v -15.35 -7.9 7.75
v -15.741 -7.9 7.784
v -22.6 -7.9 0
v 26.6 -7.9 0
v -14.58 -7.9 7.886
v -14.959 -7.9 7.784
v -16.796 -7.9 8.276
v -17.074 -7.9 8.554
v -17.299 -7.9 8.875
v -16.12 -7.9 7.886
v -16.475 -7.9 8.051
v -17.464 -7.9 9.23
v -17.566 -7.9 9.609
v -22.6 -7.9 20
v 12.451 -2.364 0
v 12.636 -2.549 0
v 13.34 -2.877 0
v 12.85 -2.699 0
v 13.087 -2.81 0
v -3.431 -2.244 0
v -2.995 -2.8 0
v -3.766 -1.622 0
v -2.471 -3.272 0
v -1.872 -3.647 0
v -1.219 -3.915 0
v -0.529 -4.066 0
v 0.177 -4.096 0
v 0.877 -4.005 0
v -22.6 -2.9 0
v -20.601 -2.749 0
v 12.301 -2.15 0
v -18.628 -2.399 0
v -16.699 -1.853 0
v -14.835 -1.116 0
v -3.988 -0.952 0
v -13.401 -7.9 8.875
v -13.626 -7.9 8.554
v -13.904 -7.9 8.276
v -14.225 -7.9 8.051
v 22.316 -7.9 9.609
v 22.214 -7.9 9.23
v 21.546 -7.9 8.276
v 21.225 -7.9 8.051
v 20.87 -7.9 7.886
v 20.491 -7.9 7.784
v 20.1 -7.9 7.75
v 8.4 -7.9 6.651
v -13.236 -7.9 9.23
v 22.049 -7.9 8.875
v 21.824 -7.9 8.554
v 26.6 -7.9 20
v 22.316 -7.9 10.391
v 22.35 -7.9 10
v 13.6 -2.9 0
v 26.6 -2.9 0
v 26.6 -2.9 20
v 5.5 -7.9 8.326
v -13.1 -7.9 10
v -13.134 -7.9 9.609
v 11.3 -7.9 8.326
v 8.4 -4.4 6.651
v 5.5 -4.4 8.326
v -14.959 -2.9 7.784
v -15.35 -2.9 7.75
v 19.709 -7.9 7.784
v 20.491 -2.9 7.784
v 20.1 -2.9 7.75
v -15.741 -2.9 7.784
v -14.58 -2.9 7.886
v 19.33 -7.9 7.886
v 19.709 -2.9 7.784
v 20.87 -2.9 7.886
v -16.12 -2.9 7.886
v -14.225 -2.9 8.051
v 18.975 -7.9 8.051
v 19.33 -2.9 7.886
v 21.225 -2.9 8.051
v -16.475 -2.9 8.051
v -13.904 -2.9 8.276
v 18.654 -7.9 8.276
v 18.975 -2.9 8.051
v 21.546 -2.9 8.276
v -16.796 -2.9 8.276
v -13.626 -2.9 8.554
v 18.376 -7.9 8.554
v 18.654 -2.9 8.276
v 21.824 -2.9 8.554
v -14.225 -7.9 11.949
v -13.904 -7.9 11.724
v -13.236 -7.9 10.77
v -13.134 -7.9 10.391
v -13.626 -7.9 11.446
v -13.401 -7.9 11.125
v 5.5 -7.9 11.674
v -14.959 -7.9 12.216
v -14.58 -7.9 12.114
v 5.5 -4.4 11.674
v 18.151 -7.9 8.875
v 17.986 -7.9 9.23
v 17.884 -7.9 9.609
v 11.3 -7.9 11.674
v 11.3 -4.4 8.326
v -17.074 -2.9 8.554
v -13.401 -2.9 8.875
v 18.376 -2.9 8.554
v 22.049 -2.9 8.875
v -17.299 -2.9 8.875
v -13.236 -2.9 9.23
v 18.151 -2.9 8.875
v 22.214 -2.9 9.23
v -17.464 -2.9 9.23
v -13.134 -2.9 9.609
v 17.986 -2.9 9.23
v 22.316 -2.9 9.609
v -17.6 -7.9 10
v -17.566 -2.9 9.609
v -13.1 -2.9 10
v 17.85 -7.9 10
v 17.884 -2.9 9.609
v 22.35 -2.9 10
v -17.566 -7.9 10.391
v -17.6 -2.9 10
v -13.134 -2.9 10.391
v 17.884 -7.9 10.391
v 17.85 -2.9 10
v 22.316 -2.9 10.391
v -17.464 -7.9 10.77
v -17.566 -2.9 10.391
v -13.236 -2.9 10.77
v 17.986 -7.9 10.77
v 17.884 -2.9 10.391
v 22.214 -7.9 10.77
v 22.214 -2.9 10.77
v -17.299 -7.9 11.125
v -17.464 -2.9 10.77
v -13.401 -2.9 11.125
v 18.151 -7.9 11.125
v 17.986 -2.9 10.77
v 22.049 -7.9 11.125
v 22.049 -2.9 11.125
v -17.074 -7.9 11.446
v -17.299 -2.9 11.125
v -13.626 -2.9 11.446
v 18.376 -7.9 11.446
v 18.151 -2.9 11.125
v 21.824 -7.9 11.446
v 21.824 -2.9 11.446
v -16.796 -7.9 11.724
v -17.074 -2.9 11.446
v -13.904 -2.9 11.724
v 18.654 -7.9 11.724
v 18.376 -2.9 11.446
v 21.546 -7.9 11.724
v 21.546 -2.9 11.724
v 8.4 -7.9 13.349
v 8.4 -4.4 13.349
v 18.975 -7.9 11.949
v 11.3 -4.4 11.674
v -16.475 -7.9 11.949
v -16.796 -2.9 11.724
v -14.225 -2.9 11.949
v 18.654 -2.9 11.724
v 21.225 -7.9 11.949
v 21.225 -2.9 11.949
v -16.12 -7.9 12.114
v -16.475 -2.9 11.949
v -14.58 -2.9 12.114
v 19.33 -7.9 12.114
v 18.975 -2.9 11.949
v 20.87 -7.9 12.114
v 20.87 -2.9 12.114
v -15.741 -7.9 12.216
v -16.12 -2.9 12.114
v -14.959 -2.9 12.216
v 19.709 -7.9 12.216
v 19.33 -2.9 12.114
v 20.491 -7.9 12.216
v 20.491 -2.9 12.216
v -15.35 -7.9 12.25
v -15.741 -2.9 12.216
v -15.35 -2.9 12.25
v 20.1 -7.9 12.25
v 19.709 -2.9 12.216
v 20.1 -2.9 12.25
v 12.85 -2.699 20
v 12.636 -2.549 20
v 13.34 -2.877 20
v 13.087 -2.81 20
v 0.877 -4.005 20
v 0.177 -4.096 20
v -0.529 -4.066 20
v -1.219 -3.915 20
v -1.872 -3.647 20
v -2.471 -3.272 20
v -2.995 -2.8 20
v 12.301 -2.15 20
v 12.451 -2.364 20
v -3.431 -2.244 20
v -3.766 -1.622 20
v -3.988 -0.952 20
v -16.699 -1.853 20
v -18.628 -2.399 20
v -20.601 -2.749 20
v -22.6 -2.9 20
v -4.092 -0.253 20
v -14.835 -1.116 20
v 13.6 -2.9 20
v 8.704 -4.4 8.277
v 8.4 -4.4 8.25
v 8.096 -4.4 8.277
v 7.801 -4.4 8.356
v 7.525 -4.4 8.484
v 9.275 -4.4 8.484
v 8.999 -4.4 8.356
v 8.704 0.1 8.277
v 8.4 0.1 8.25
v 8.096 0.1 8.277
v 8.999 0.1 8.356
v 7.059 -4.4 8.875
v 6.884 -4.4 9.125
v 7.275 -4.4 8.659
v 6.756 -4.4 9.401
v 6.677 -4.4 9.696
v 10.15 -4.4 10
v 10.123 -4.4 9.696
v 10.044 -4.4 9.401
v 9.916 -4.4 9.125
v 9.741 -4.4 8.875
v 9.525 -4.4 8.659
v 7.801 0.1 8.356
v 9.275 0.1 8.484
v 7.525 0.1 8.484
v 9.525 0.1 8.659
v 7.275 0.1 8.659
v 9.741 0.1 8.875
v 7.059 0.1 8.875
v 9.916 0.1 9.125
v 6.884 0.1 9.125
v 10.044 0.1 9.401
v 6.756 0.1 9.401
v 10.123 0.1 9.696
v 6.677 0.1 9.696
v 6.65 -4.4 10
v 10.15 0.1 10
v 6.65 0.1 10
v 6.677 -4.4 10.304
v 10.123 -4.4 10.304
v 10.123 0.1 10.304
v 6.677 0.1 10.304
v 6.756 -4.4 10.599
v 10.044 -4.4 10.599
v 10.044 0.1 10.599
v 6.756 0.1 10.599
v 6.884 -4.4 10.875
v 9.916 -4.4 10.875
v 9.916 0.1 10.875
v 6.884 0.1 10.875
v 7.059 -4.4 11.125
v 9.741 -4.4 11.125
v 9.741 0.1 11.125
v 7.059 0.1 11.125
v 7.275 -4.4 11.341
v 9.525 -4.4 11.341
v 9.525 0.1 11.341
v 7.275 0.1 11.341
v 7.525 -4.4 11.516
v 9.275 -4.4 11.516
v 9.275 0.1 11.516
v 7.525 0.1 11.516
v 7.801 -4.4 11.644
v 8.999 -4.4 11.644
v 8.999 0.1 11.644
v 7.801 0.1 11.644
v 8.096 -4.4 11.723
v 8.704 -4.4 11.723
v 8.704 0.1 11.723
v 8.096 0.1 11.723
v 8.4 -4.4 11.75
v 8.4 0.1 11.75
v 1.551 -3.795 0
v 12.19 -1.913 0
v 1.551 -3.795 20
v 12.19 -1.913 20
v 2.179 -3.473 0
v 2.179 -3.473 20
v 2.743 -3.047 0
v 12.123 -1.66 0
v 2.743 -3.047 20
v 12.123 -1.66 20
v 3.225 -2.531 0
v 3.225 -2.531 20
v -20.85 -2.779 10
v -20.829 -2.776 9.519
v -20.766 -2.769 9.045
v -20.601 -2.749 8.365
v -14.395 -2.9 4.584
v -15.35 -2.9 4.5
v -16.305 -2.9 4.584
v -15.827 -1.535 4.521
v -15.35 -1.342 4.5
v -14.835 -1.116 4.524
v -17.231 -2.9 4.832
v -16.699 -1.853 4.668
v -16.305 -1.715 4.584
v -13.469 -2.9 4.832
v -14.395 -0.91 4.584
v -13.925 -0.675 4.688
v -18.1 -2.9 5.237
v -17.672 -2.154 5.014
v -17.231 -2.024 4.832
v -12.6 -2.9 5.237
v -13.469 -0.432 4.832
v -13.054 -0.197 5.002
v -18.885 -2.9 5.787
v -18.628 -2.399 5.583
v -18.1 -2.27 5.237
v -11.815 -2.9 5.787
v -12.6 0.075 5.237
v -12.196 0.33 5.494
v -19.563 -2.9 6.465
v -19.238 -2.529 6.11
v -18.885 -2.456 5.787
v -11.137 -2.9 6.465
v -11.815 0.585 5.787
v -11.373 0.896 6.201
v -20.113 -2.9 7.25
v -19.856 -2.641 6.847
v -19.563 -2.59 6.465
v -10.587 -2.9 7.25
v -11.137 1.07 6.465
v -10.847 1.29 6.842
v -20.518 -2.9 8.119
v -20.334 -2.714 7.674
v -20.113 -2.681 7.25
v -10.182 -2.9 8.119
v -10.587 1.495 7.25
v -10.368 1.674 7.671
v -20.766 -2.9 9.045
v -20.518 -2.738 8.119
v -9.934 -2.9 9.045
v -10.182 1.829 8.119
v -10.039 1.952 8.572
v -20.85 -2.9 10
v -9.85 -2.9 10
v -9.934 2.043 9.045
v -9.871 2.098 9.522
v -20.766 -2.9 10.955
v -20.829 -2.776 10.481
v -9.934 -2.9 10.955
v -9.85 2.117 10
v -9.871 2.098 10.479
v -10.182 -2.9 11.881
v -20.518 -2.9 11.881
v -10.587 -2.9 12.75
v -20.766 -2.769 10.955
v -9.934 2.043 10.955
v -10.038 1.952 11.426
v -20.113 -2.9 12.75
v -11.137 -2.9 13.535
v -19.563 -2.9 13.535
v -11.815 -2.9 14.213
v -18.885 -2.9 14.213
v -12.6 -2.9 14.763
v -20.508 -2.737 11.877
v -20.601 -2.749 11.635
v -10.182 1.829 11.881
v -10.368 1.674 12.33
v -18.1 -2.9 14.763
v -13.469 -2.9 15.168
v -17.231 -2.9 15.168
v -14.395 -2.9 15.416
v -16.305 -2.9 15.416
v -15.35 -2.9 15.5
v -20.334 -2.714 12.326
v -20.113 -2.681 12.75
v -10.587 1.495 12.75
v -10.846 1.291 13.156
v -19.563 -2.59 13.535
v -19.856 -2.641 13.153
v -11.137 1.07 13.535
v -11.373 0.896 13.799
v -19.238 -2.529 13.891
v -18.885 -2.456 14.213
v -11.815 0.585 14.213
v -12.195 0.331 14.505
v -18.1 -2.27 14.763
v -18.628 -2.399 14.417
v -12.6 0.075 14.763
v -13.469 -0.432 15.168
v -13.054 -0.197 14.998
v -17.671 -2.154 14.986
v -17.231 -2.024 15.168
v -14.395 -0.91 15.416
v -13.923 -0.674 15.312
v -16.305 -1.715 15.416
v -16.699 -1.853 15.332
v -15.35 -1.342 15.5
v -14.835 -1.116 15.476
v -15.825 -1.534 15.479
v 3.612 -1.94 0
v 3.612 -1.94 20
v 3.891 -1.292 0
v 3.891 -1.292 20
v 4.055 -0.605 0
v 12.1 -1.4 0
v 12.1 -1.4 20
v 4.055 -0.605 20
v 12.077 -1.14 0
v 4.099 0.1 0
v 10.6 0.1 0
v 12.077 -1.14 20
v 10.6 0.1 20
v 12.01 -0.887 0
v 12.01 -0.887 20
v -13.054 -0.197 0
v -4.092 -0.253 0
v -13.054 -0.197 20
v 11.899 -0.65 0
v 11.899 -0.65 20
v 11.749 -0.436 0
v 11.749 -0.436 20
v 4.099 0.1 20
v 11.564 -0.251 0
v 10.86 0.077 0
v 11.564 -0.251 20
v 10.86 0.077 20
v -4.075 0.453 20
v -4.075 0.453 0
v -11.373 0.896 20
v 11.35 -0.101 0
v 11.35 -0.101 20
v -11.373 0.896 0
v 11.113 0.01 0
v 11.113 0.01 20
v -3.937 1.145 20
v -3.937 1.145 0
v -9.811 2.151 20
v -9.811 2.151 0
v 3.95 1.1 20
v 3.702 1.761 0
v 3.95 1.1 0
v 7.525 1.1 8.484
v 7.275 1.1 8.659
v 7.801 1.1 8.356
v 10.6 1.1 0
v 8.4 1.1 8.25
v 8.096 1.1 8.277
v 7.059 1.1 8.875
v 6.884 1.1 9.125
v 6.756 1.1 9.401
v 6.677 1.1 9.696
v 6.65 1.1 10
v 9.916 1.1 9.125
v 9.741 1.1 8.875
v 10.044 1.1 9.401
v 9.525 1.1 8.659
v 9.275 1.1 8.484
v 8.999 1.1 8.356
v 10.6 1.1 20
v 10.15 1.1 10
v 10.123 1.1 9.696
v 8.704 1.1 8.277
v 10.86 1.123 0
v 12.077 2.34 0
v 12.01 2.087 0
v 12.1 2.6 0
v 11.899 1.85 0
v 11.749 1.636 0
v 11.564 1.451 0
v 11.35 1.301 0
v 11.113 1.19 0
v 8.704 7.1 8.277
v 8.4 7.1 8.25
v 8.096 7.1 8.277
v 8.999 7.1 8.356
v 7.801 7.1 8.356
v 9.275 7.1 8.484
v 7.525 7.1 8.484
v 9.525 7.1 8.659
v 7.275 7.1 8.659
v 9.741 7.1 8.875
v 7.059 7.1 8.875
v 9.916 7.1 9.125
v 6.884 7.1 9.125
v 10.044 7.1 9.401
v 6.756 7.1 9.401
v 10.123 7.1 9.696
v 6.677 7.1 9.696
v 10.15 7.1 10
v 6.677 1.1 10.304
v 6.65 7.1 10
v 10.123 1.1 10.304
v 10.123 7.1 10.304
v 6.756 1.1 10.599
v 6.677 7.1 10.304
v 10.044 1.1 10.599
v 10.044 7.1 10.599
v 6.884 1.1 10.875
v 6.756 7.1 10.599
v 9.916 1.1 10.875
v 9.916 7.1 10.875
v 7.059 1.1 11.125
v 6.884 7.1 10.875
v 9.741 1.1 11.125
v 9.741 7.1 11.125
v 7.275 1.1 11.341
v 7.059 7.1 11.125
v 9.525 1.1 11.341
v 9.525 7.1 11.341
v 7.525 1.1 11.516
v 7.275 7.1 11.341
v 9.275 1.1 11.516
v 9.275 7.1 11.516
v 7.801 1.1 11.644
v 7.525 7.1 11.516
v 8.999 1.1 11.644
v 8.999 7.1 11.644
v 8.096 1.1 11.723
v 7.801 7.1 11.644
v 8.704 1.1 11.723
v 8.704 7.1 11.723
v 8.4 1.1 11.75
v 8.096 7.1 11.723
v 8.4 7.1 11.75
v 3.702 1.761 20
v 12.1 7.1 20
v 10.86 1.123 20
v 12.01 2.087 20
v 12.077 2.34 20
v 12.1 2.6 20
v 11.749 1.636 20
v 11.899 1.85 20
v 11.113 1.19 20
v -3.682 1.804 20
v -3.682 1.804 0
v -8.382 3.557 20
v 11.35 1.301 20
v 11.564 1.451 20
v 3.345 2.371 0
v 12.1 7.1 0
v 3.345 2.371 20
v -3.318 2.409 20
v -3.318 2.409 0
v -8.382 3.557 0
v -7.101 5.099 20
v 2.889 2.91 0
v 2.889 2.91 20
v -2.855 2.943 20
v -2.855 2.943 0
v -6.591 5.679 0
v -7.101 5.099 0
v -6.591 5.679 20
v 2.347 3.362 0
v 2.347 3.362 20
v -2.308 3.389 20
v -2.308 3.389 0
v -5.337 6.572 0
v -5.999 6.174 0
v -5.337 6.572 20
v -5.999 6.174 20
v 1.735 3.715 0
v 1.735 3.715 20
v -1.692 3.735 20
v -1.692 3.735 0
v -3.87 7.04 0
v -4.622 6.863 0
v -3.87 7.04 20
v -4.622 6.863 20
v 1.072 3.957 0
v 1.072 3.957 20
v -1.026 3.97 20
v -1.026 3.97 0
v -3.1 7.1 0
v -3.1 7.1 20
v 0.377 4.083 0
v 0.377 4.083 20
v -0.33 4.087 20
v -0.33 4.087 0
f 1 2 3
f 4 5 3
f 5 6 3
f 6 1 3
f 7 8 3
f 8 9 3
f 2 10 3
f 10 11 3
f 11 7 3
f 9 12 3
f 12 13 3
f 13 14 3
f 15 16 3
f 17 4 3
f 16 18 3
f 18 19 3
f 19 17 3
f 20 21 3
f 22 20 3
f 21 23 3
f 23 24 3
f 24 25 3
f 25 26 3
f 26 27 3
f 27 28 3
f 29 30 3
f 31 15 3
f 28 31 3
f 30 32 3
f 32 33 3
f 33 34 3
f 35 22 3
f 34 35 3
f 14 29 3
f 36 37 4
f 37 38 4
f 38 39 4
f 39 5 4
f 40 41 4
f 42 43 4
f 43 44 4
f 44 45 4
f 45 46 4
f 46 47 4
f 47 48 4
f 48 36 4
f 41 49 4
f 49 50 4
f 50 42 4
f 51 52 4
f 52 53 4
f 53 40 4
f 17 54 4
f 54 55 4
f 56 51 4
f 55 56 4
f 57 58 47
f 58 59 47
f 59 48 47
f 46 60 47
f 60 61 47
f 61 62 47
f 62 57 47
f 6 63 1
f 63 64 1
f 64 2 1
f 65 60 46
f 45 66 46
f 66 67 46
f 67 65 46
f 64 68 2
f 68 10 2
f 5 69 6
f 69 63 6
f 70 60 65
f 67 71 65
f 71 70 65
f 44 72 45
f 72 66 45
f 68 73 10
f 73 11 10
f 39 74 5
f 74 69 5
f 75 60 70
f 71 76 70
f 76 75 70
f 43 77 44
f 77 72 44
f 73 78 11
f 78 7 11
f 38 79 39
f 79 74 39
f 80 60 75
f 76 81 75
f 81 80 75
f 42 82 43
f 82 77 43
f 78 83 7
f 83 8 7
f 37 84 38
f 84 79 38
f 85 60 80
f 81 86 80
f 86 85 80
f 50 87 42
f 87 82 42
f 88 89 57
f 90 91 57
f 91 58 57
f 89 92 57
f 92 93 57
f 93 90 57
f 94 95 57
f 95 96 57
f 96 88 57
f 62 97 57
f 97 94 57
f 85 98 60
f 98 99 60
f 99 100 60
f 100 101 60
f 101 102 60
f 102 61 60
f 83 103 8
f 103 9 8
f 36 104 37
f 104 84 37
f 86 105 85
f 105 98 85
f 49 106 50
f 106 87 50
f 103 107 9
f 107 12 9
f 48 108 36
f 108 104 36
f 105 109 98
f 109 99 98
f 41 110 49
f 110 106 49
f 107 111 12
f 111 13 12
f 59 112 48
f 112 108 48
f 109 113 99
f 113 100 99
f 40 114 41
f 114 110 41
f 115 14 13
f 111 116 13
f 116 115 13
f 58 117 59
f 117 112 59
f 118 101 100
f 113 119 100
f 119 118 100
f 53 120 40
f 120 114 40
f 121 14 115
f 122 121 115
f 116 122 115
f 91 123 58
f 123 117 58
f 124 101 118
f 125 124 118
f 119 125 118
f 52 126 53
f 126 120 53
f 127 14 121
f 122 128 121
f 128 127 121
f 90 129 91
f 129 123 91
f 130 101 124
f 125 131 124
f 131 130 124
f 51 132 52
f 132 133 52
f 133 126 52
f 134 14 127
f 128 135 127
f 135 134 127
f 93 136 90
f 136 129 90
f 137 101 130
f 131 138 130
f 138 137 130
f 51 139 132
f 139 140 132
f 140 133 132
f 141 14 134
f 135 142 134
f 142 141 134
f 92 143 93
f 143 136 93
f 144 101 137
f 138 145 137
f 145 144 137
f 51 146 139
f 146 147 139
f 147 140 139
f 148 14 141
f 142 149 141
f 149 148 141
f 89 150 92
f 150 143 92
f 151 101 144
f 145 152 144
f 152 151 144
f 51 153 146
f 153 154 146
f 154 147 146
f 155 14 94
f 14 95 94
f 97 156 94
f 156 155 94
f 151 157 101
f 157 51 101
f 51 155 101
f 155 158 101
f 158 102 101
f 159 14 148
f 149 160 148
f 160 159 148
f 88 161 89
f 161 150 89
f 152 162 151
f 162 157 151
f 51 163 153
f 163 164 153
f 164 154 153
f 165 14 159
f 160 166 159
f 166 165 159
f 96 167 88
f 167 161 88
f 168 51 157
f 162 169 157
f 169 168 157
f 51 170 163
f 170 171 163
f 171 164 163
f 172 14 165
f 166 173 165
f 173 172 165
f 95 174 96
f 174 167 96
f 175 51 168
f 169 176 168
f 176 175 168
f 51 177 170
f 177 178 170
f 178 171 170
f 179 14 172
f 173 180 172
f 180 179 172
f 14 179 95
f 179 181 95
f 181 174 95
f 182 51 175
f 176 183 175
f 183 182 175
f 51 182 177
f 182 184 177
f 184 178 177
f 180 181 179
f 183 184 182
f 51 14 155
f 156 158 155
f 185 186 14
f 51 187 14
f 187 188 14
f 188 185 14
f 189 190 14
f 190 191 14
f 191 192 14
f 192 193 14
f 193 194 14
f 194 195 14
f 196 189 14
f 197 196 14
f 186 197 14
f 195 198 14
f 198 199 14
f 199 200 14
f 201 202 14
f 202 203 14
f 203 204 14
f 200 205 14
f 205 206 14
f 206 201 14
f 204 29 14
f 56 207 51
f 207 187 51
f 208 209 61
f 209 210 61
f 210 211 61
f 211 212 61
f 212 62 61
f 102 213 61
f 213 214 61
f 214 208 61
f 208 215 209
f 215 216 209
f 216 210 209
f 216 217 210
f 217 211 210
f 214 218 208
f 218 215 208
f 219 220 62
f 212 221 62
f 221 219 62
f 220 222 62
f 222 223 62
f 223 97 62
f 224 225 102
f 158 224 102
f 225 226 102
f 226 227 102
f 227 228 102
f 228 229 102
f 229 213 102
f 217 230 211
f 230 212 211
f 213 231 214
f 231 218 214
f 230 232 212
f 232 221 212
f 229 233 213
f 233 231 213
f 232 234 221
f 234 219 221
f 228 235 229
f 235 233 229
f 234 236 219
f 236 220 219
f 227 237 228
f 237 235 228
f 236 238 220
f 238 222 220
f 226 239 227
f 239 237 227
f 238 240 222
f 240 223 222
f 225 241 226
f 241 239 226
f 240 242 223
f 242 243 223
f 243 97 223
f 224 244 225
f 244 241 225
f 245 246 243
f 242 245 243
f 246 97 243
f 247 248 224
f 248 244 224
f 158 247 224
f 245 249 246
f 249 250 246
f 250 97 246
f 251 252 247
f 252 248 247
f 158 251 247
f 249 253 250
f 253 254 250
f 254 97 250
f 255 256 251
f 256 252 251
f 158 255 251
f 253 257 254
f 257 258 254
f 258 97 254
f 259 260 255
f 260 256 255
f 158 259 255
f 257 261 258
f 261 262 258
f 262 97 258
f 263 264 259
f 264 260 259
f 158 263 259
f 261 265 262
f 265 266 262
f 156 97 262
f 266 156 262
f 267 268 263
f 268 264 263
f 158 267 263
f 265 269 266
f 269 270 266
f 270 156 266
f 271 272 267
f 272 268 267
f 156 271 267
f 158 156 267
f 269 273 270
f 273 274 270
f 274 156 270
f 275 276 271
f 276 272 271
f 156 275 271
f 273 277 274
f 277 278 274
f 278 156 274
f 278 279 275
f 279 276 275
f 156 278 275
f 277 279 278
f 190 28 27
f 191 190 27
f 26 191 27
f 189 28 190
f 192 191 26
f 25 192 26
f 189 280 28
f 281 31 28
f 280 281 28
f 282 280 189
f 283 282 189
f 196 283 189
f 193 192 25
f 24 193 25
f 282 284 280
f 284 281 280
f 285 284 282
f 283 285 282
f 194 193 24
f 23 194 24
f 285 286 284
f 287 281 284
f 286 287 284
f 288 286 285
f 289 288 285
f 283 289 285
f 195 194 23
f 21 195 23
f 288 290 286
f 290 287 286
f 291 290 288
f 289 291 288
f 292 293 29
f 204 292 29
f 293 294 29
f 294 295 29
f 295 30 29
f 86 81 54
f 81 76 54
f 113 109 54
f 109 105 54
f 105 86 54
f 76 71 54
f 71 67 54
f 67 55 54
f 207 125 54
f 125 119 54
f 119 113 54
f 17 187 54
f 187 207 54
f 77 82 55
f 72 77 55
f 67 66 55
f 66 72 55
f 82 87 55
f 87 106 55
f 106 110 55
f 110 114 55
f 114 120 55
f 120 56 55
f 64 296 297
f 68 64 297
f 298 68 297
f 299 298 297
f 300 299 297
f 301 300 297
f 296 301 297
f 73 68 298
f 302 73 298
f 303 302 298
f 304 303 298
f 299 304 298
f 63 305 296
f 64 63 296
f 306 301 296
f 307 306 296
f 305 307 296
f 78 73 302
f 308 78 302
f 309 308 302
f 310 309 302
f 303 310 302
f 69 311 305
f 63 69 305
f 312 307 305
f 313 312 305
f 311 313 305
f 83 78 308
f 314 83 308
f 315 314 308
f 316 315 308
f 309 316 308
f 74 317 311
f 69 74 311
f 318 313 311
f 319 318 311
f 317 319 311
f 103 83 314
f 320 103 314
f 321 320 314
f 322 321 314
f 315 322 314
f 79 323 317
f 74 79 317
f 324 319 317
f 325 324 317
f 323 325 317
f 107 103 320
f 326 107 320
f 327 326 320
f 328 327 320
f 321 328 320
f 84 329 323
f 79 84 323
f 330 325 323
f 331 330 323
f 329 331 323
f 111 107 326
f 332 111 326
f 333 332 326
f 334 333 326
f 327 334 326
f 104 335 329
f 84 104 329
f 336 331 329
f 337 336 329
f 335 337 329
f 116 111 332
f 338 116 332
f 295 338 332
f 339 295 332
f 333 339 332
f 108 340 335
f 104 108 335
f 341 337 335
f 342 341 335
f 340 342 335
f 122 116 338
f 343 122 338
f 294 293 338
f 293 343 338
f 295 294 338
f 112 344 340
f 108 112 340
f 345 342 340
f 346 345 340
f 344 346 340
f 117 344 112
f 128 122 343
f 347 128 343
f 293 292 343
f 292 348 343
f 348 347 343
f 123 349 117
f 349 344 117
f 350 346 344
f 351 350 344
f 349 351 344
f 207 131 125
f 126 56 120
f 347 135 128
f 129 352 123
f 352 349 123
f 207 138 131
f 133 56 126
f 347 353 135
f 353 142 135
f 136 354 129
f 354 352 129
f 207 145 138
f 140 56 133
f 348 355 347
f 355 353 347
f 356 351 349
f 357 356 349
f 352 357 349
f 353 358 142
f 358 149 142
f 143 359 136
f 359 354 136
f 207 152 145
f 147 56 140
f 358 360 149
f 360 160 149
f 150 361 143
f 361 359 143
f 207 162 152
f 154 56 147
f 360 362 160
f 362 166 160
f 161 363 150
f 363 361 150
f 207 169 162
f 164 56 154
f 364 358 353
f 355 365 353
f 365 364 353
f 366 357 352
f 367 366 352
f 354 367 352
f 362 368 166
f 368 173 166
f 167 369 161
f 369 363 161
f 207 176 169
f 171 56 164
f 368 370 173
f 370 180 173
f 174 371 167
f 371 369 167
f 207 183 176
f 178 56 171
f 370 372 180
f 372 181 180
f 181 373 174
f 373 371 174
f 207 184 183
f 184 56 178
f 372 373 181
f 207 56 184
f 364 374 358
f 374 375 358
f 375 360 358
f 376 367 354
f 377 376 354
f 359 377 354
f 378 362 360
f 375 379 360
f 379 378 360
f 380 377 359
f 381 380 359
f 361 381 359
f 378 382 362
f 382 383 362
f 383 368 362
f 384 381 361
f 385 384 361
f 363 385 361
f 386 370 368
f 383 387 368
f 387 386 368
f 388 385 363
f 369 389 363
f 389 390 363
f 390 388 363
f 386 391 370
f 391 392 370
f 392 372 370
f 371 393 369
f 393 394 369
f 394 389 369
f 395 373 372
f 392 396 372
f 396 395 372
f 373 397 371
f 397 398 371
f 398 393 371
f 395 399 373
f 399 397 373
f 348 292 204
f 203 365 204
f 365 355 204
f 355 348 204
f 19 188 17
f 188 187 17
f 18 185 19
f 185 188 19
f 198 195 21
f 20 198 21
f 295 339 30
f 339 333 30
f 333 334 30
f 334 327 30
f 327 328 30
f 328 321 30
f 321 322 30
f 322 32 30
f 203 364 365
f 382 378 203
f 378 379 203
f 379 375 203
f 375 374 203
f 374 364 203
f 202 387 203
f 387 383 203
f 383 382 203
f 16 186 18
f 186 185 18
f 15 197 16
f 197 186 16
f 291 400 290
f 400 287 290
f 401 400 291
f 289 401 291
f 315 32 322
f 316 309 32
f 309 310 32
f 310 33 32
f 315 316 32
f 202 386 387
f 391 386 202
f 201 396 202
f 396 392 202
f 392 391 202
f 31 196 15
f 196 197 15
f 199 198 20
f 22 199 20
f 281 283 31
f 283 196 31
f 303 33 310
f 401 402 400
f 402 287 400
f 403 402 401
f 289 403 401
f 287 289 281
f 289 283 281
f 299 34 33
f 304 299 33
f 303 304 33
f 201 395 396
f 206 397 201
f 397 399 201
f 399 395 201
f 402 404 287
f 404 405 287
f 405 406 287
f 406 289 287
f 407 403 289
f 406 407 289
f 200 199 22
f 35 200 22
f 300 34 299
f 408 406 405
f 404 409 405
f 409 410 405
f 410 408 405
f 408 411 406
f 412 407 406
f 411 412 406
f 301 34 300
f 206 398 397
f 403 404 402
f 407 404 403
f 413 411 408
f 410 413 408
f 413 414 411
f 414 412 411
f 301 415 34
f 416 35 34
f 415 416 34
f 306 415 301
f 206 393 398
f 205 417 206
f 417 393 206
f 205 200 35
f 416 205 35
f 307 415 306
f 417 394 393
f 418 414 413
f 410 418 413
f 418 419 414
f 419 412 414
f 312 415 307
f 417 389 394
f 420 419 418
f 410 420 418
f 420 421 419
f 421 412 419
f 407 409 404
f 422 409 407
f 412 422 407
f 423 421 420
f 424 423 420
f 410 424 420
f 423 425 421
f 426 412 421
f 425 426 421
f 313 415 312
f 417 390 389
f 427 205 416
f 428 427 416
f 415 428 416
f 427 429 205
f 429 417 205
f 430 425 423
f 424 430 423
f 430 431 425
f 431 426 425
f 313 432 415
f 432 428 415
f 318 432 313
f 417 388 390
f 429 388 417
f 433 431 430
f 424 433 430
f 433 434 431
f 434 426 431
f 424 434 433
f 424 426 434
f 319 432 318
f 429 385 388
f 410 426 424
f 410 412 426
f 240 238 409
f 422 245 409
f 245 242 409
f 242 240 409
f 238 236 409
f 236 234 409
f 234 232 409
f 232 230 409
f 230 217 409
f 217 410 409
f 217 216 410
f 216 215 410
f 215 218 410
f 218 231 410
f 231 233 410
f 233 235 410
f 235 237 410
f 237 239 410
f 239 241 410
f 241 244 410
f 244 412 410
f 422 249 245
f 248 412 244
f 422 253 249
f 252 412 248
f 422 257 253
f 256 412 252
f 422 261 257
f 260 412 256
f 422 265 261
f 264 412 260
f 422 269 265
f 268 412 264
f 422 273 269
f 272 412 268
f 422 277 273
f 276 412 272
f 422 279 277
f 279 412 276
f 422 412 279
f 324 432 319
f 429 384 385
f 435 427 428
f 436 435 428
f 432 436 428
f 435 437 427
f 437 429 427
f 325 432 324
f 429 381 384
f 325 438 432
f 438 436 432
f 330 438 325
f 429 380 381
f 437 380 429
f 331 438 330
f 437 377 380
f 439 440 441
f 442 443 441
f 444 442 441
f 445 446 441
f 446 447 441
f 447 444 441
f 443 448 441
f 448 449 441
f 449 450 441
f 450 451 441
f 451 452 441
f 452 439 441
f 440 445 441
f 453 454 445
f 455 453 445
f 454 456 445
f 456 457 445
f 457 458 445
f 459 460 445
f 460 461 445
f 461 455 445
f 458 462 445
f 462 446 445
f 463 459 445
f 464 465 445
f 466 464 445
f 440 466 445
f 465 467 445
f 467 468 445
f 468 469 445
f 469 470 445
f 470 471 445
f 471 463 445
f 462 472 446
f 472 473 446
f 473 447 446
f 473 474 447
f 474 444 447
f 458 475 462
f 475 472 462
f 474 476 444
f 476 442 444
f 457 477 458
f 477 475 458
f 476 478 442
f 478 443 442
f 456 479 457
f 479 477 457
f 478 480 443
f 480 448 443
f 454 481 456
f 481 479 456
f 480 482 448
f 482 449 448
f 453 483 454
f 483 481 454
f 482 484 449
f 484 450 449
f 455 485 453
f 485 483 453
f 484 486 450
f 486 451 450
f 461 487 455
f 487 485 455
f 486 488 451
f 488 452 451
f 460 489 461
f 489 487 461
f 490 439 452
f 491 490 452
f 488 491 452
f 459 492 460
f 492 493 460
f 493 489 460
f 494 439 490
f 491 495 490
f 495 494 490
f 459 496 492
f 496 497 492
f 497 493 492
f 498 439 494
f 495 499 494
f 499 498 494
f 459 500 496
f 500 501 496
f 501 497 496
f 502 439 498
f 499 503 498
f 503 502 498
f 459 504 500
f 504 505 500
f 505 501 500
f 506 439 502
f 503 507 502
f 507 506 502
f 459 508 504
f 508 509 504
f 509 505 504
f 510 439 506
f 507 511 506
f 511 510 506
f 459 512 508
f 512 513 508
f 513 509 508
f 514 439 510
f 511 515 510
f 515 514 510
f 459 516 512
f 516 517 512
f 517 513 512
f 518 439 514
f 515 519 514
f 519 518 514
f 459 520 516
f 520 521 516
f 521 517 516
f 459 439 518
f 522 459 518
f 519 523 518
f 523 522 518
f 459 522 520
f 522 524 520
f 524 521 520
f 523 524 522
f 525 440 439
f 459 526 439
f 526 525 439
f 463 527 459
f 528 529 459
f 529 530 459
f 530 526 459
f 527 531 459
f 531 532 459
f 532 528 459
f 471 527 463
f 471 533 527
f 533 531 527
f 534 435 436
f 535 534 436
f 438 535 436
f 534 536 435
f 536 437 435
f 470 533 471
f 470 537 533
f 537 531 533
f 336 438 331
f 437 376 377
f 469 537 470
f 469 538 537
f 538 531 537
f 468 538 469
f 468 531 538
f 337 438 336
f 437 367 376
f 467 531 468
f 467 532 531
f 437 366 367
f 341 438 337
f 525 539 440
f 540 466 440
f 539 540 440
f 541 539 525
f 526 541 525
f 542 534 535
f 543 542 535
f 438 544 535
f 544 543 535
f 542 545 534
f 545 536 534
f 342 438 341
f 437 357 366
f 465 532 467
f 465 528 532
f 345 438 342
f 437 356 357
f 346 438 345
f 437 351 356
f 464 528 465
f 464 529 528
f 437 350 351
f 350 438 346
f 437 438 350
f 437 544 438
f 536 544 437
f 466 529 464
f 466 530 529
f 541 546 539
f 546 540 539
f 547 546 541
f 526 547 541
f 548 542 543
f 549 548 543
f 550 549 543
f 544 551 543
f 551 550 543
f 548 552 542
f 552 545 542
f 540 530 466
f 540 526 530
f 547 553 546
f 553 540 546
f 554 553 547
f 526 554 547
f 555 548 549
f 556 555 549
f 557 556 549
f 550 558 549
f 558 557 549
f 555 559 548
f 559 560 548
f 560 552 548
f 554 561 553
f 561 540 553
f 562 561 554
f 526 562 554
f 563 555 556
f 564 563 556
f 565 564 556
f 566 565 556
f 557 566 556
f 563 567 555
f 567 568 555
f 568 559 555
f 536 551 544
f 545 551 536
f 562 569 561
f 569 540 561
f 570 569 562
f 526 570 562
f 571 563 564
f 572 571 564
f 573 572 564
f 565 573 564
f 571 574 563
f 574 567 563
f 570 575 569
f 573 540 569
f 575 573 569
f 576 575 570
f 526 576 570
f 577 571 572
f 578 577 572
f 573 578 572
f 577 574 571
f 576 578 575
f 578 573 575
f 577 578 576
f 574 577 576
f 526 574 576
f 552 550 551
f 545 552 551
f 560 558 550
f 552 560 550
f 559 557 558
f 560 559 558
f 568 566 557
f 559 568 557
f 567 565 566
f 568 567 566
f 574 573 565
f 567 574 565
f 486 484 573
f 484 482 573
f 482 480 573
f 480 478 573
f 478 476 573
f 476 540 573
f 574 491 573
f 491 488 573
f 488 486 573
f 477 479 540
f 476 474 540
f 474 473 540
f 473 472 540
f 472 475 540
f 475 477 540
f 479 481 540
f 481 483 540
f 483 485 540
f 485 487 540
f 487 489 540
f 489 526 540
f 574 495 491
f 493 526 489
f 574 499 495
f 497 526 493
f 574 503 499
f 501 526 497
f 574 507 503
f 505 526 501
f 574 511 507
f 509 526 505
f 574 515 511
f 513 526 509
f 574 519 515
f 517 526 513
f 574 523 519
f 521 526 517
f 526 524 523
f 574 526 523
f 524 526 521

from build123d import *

# Parameters (mm, degrees)
RESSALTO_EXTRUS_O1_DEPTH   = 20
CORTE_EXTRUS_O1_DEPTH      = 35.724775606
CORTE_EXTRUS_O1_DEPTH_BACK = 35.724775606
ESBO_O2_R                  = 1.75
CORTE_EXTRUS_O2_DEPTH      = 3.5
FILETE1_R                  = 1.5
ESBO_O4_W                  = 2.5
ESBO_O4_H                  = 20
RESSALTO_EXTRUS_O2_DEPTH   = 5
ESBO_O5_R                  = 2.25
CORTE_EXTRUS_O3_DEPTH      = 35.749964678
FILETE2_DEPTH              = 7.7499999
FILETE2_START              = 12.2500001
FILETE2_2_DEPTH            = 7.7499999
FILETE2_START_2            = 7.7499999
FILETE2_3_DEPTH            = 4.5000002
FILETE2_START_3            = -2.9
FILETE2_4_OUTLINE_R        = 2.25
FILETE2_4_DEPTH            = 7.998725805
ESBO_O6_R                  = 5.5
CORTE_EXTRUS_O4_DEPTH      = 10


with BuildPart() as part:
    # Esboço1 → Ressalto-extrusão1 (new body)
    with BuildSketch(Plane.XY):
        with BuildLine():
            ThreePointArc((10.599999813, 0.1), (11.660659985, -0.339339828), (12.099999813, -1.4))
            Line((12.099999813, -1.4), (12.099999813, -2.9))
            Line((12.099999813, -2.9), (24.100000848, -2.9))
            Line((24.100000848, -2.9), (24.100000848, -7.9))
            Line((24.100000848, -7.9), (-20.099999152, -7.9))
            Line((-20.099999152, -7.9), (-20.099999152, -2.9))
            Line((-20.099999152, -2.9), (-8.099998116, -2.9))
            Line((-8.099998116, -2.9), (-8.099998116, 2.1))
            ThreePointArc((-8.099998116, 2.1), (-6.635532022, 5.635533906), (-3.099998116, 7.1))
            Line((-3.099998116, 7.1), (12.099999813, 7.1))
            Line((12.099999813, 7.1), (12.099999813, 2.6))
            ThreePointArc((12.099999813, 2.6), (11.660659985, 1.539339828), (10.599999813, 1.1))
            Line((10.599999813, 1.1), (3.949683532, 1.1))
            ThreePointArc((3.949683532, 1.1), (-4.055174785, -0.604613482), (4.098780306, 0.1))
            Line((4.098780306, 0.1), (10.599999813, 0.1))
        make_face()
    extrude(amount=RESSALTO_EXTRUS_O1_DEPTH)

    # Esboço2 → Corte-extrusão1 (cut, two sides: drawn at the far end of the back side and taken through both)
    with BuildSketch(Plane(origin=(0, 7.1, 0), x_dir=(1, 0, 0), z_dir=(0, 1, 0)).offset(-CORTE_EXTRUS_O1_DEPTH_BACK)):
        with Locations(Location((8.400001366, -10, 0), (0, 0, 180))):
            Circle(ESBO_O2_R)
    extrude(amount=CORTE_EXTRUS_O1_DEPTH + CORTE_EXTRUS_O1_DEPTH_BACK, mode=Mode.SUBTRACT)

    # Esboço3 → Corte-extrusão2 (cut)
    with BuildSketch(Plane.XZ.offset(7.9)):
        Polygon((8.400001366, 13.348631561), (5.500001366, 11.674315781), (5.500001366, 8.325684219), (8.400001366, 6.651368439), (11.300001366, 8.325684219), (11.300001366, 11.674315781), align=None)
    extrude(amount=-CORTE_EXTRUS_O2_DEPTH, mode=Mode.SUBTRACT)

    # Filete1
    filete1_edges = [part.edges().sort_by_distance(p)[0] for p in [
        (12.099999813, -2.9, 10),
    ]]
    fillet(filete1_edges, radius=FILETE1_R - 0.0001)  # a hair under: the kernel refuses the full size

    # Esboço4 → Ressalto-extrusão2 (add)
    with BuildSketch(Plane.XZ.offset(7.9)):
        with Locations((-21.349999152, 10)):
            Rectangle(ESBO_O4_W, ESBO_O4_H)
        with Locations((25.350000848, 10)):
            Rectangle(ESBO_O4_W, ESBO_O4_H)
    extrude(amount=-RESSALTO_EXTRUS_O2_DEPTH)

    # Esboço5 → Corte-extrusão3 (cut, through all)
    with BuildSketch(Plane(origin=(0, -2.9, 0), x_dir=(1, 0, 0), z_dir=(0, 1, 0))):
        with Locations(Location((-15.349998634, -10, 0), (0, 0, 180))):
            Circle(ESBO_O5_R)
        with Locations(Location((20.100000331, -10, 0), (0, 0, 180))):
            Circle(ESBO_O5_R)
    extrude(amount=-CORTE_EXTRUS_O3_DEPTH, mode=Mode.SUBTRACT)

    # Filete2: read off the stored shape, not the designer's step
    # Filete2 outline → Filete2 (add)
    with BuildSketch(Plane.XY):
        with BuildLine():
            ThreePointArc((-7.100953445, 5.098725805), (-13.932624155, -0.679149409), (-22.599999152, -2.9))
            Line((-22.599999152, -2.9), (-8.099998116, -2.9))
            Line((-8.099998116, -2.9), (-8.099998116, 2.1))
            ThreePointArc((-8.099998116, 2.1), (-7.843666351, 3.680383396), (-7.100953445, 5.098725805))
        make_face()
    extrude(amount=FILETE2_DEPTH)

    # Filete2 2 outline → Filete2 2 (add)
    with BuildSketch(Plane.XY.offset(FILETE2_START)):
        with BuildLine():
            ThreePointArc((-7.100953445, 5.098725805), (-13.932624155, -0.679149409), (-22.599999152, -2.9))
            Line((-22.599999152, -2.9), (-8.099998116, -2.9))
            Line((-8.099998116, -2.9), (-8.099998116, 2.1))
            ThreePointArc((-8.099998116, 2.1), (-7.843666351, 3.680383396), (-7.100953445, 5.098725805))
        make_face()
    extrude(amount=FILETE2_2_DEPTH)

    # Filete2 3 outline → Filete2 3 (add)
    with BuildSketch(Plane.XY.offset(FILETE2_START_2)):
        with BuildLine():
            ThreePointArc((-7.100953445, 5.098725805), (-13.932624155, -0.679149409), (-22.599999152, -2.9))
            Line((-22.599999152, -2.9), (-8.099998116, -2.9))
            Line((-8.099998116, -2.9), (-8.099998116, 2.099999998))
            ThreePointArc((-8.099998116, 2.099999998), (-7.843666351, 3.680383395), (-7.100953445, 5.098725805))
        make_face()
    extrude(amount=FILETE2_3_DEPTH)

    # Filete2 4 outline → Filete2 4 (cut)
    with BuildSketch(Plane(origin=(0, 0, 0), x_dir=(1, 0, 0), z_dir=(0, 1, 0)).offset(FILETE2_START_3)):
        with Locations((-15.349998634, -10)):
            Circle(FILETE2_4_OUTLINE_R)
    extrude(amount=FILETE2_4_DEPTH, mode=Mode.SUBTRACT)

    # Esboço6 → Corte-extrusão4 (cut)
    with BuildSketch(Plane(origin=(0, 7.1, 0), x_dir=(1, 0, 0), z_dir=(0, 1, 0))):
        with Locations(Location((-15.349998634, -10, 0), (0, 0, 180))):
            Circle(ESBO_O6_R)
    extrude(amount=-CORTE_EXTRUS_O4_DEPTH, mode=Mode.SUBTRACT)


solid = part.part
